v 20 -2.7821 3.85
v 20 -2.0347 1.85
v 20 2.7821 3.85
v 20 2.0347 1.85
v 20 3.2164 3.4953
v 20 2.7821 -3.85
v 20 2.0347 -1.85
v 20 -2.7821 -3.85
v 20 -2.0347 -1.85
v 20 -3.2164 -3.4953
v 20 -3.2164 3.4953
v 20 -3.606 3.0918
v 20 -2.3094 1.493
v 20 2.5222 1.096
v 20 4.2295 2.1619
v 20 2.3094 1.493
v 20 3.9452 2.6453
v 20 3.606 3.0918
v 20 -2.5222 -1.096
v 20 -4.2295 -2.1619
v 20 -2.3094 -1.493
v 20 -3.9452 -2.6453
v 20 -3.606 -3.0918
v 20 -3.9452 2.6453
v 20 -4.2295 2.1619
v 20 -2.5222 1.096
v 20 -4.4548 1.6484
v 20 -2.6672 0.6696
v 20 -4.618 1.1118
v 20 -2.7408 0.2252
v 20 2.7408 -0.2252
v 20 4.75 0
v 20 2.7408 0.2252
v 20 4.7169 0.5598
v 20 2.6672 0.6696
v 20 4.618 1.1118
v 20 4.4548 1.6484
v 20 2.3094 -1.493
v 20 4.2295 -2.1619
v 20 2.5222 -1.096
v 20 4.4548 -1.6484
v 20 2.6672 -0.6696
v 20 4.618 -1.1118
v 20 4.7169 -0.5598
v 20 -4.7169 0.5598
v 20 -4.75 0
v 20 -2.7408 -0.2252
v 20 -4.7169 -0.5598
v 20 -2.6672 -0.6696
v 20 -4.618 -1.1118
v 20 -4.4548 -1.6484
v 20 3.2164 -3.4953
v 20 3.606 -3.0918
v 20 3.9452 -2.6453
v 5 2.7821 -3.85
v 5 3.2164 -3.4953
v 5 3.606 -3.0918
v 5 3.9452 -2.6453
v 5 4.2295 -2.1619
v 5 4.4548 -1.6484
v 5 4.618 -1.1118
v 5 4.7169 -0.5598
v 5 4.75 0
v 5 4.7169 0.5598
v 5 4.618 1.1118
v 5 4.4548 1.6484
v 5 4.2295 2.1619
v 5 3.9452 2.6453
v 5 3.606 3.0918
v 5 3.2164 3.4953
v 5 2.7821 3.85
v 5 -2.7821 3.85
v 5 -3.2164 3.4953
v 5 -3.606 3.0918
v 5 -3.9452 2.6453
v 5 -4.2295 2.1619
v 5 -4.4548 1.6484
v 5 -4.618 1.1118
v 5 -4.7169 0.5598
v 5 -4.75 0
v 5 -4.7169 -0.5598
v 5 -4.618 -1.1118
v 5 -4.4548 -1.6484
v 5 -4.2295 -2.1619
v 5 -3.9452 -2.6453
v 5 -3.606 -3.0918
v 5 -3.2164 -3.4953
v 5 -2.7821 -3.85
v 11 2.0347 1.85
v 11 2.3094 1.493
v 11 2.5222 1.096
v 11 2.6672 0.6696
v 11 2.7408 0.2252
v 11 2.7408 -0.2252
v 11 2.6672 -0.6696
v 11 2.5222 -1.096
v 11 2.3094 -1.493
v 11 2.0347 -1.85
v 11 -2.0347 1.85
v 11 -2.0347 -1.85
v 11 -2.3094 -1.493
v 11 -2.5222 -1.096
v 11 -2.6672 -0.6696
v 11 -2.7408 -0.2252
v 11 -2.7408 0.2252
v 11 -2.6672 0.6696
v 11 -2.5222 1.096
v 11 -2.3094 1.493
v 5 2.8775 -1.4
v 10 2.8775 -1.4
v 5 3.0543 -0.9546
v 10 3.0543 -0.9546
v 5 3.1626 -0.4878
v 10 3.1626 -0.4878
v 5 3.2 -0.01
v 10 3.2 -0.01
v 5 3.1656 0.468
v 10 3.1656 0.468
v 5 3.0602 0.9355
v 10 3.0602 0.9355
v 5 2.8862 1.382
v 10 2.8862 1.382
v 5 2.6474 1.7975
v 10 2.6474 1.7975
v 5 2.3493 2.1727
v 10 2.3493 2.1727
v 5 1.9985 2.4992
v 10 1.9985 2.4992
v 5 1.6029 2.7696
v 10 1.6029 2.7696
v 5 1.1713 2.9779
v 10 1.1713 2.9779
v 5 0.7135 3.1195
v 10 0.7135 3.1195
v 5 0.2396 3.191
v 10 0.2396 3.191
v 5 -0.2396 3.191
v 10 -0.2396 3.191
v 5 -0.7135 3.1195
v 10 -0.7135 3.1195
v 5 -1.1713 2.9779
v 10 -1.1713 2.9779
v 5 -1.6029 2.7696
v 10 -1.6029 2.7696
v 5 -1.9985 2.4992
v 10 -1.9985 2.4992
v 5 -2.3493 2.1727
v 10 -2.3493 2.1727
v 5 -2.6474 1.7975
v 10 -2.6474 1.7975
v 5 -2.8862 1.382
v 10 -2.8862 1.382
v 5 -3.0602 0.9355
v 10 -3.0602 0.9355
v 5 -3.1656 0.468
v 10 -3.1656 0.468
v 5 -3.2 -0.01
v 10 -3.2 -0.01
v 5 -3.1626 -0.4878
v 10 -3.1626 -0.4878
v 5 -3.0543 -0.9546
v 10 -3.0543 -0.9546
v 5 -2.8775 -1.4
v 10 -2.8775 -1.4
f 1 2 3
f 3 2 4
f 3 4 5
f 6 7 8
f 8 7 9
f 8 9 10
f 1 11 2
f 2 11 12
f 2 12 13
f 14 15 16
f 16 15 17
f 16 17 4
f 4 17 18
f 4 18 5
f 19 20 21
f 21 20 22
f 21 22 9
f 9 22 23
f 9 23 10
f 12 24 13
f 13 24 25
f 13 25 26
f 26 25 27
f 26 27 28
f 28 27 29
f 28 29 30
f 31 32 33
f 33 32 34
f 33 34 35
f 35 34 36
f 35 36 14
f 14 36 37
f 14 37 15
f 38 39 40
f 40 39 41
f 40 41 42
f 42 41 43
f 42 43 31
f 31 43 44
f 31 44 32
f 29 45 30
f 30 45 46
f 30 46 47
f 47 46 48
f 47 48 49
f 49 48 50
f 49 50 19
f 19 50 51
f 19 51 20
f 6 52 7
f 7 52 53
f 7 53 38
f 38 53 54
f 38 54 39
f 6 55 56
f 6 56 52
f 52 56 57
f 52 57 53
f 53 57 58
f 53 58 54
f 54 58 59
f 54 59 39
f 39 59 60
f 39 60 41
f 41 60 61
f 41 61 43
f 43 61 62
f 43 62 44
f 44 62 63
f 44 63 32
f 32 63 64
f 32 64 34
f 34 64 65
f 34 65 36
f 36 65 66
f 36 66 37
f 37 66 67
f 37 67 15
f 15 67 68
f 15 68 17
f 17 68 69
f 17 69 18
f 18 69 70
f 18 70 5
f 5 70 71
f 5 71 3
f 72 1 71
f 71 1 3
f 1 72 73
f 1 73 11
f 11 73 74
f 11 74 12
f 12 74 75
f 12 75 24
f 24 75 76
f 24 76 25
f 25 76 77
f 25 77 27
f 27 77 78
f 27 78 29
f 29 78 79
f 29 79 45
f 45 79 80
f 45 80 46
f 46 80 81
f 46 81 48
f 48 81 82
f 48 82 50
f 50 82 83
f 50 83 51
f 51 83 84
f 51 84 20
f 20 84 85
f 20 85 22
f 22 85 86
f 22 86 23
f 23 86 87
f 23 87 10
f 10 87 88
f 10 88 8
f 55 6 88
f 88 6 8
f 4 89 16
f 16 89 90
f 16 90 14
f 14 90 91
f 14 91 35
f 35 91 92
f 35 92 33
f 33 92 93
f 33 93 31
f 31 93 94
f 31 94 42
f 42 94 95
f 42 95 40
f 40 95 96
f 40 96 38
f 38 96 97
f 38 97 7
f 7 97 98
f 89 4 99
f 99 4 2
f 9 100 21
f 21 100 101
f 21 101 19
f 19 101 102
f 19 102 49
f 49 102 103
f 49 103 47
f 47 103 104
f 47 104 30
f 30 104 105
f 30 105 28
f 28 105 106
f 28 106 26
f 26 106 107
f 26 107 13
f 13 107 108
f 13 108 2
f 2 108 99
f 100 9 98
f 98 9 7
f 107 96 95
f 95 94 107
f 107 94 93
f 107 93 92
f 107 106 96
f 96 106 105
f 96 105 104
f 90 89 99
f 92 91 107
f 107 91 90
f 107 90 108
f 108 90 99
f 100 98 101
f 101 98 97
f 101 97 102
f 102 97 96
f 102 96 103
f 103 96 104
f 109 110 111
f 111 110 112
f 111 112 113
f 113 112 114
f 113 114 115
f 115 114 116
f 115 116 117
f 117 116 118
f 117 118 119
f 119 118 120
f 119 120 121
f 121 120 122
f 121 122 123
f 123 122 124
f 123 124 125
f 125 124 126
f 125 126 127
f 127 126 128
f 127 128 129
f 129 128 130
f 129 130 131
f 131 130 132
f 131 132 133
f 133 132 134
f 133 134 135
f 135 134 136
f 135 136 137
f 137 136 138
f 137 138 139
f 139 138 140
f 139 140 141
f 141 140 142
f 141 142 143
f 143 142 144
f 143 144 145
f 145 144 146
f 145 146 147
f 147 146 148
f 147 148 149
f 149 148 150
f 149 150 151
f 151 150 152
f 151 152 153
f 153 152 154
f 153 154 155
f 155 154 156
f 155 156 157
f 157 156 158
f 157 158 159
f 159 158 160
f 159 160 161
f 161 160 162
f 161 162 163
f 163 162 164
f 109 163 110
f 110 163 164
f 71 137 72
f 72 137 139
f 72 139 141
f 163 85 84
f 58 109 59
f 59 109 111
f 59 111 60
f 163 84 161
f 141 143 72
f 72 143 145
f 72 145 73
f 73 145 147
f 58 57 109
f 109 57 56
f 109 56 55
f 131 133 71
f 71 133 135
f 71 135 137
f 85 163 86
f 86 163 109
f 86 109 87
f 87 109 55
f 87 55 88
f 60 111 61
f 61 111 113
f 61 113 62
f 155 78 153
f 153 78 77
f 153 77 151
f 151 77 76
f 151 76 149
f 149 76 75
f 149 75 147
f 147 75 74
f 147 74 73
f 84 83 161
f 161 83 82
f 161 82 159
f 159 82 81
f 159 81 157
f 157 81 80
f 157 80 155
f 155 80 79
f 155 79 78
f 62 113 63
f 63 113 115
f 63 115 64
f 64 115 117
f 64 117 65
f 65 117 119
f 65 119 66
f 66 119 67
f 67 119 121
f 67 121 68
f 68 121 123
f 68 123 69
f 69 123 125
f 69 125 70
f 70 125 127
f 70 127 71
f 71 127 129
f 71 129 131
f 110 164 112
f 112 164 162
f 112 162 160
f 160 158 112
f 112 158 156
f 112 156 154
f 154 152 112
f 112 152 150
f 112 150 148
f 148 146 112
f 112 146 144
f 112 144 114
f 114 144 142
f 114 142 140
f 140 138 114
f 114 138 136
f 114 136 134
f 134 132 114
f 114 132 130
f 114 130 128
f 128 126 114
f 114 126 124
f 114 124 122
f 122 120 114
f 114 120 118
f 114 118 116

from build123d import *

# Parameters (mm, degrees)
SKETCH1_R           = 2.75
BOSS_EXTRUDE1_DEPTH = 11
CUT_EXTRUDE1_DEPTH  = 23.341105613
BOSS_EXTRUDE2_START = 9
BOSS_EXTRUDE2_DEPTH = 10
CUT_EXTRUDE2_START  = -13
CUT_EXTRUDE2_DEPTH  = 21
BOSS_EXTRUDE3_DEPTH = 5


with BuildPart() as part:
    # Sketch1 → Boss-Extrude1 (new, symmetric)
    with BuildSketch(Plane(origin=(0, 0, 0), x_dir=(0, 0, -1), z_dir=(1, 0, 0))):
        Circle(SKETCH1_R)
    extrude(amount=BOSS_EXTRUDE1_DEPTH, both=True)

    # Sketch2 → Cut-Extrude1 (cut, through all)
    with BuildSketch(Plane(origin=(11, 0, 0), x_dir=(0, 0, -1), z_dir=(1, 0, 0))):
        with BuildLine():
            Line((-1.85, 2.034698995), (-1.85, -2.034698995))
            ThreePointArc((-1.85, -2.034698995), (-2.75, 0), (-1.85, 2.034698995))
        make_face()
        with BuildLine():
            Line((1.85, 2.034698995), (1.85, -2.034698995))
            ThreePointArc((1.85, -2.034698995), (2.75, 0), (1.85, 2.034698995))
        make_face()
    extrude(amount=-CUT_EXTRUDE1_DEPTH, mode=Mode.SUBTRACT)

    # Sketch3 → Boss-Extrude2 (add)
    with BuildSketch(Plane(origin=(11, 0, 0), x_dir=(0, 0, -1), z_dir=(1, 0, 0)).offset(BOSS_EXTRUDE2_START)):
        with BuildLine():
            Line((-3.85, 2.782085549), (-3.85, -2.782085549))
            ThreePointArc((-3.85, -2.782085549), (0, -4.75), (3.85, -2.782085549))
            Line((3.85, -2.782085549), (3.85, 2.782085549))
            ThreePointArc((3.85, 2.782085549), (0, 4.75), (-3.85, 2.782085549))
        make_face()
        with BuildLine():
            Line((-1.85, 2.034698995), (-1.85, -2.034698995))
            ThreePointArc((-1.85, -2.034698995), (0, -2.75), (1.85, -2.034698995))
            Line((1.85, -2.034698995), (1.85, 2.034698995))
            ThreePointArc((1.85, 2.034698995), (0, 2.75), (-1.85, 2.034698995))
        make_face(mode=Mode.SUBTRACT)
    extrude(amount=-BOSS_EXTRUDE2_DEPTH)

    # Sketch5 → Cut-Extrude2 (cut)
    with BuildSketch(Plane.ZY.offset(3).offset(CUT_EXTRUDE2_START)):
        with BuildLine():
            Line((1.85, -2.034698995), (1.85, 2.034698995))
            ThreePointArc((1.85, 2.034698995), (0, 2.75), (-1.85, 2.034698995))
            Line((-1.85, 2.034698995), (-1.85, -2.034698995))
            ThreePointArc((-1.85, -2.034698995), (0, -2.75), (1.85, -2.034698995))
        make_face()
    extrude(amount=CUT_EXTRUDE2_DEPTH, mode=Mode.SUBTRACT)

    # Sketch6 → Boss-Extrude3 (add)
    with BuildSketch(Plane.ZY.offset(-10)):
        with BuildLine():
            ThreePointArc((3.85, 2.782085549), (0, 4.75), (-3.85, 2.782085549))
            Line((-3.85, 2.782085549), (-3.85, -2.782085549))
            ThreePointArc((-3.85, -2.782085549), (0, -4.75), (3.85, -2.782085549))
            Line((3.85, -2.782085549), (3.85, 2.782085549))
        make_face()
        with BuildLine():
            Line((-1.4, -2.877498914), (-1.4, 2.877498914))
            ThreePointArc((-1.4, 2.877498914), (3.2, 0), (-1.4, -2.877498914))
        make_face(mode=Mode.SUBTRACT)
    extrude(amount=BOSS_EXTRUDE3_DEPTH)


solid = part.part
